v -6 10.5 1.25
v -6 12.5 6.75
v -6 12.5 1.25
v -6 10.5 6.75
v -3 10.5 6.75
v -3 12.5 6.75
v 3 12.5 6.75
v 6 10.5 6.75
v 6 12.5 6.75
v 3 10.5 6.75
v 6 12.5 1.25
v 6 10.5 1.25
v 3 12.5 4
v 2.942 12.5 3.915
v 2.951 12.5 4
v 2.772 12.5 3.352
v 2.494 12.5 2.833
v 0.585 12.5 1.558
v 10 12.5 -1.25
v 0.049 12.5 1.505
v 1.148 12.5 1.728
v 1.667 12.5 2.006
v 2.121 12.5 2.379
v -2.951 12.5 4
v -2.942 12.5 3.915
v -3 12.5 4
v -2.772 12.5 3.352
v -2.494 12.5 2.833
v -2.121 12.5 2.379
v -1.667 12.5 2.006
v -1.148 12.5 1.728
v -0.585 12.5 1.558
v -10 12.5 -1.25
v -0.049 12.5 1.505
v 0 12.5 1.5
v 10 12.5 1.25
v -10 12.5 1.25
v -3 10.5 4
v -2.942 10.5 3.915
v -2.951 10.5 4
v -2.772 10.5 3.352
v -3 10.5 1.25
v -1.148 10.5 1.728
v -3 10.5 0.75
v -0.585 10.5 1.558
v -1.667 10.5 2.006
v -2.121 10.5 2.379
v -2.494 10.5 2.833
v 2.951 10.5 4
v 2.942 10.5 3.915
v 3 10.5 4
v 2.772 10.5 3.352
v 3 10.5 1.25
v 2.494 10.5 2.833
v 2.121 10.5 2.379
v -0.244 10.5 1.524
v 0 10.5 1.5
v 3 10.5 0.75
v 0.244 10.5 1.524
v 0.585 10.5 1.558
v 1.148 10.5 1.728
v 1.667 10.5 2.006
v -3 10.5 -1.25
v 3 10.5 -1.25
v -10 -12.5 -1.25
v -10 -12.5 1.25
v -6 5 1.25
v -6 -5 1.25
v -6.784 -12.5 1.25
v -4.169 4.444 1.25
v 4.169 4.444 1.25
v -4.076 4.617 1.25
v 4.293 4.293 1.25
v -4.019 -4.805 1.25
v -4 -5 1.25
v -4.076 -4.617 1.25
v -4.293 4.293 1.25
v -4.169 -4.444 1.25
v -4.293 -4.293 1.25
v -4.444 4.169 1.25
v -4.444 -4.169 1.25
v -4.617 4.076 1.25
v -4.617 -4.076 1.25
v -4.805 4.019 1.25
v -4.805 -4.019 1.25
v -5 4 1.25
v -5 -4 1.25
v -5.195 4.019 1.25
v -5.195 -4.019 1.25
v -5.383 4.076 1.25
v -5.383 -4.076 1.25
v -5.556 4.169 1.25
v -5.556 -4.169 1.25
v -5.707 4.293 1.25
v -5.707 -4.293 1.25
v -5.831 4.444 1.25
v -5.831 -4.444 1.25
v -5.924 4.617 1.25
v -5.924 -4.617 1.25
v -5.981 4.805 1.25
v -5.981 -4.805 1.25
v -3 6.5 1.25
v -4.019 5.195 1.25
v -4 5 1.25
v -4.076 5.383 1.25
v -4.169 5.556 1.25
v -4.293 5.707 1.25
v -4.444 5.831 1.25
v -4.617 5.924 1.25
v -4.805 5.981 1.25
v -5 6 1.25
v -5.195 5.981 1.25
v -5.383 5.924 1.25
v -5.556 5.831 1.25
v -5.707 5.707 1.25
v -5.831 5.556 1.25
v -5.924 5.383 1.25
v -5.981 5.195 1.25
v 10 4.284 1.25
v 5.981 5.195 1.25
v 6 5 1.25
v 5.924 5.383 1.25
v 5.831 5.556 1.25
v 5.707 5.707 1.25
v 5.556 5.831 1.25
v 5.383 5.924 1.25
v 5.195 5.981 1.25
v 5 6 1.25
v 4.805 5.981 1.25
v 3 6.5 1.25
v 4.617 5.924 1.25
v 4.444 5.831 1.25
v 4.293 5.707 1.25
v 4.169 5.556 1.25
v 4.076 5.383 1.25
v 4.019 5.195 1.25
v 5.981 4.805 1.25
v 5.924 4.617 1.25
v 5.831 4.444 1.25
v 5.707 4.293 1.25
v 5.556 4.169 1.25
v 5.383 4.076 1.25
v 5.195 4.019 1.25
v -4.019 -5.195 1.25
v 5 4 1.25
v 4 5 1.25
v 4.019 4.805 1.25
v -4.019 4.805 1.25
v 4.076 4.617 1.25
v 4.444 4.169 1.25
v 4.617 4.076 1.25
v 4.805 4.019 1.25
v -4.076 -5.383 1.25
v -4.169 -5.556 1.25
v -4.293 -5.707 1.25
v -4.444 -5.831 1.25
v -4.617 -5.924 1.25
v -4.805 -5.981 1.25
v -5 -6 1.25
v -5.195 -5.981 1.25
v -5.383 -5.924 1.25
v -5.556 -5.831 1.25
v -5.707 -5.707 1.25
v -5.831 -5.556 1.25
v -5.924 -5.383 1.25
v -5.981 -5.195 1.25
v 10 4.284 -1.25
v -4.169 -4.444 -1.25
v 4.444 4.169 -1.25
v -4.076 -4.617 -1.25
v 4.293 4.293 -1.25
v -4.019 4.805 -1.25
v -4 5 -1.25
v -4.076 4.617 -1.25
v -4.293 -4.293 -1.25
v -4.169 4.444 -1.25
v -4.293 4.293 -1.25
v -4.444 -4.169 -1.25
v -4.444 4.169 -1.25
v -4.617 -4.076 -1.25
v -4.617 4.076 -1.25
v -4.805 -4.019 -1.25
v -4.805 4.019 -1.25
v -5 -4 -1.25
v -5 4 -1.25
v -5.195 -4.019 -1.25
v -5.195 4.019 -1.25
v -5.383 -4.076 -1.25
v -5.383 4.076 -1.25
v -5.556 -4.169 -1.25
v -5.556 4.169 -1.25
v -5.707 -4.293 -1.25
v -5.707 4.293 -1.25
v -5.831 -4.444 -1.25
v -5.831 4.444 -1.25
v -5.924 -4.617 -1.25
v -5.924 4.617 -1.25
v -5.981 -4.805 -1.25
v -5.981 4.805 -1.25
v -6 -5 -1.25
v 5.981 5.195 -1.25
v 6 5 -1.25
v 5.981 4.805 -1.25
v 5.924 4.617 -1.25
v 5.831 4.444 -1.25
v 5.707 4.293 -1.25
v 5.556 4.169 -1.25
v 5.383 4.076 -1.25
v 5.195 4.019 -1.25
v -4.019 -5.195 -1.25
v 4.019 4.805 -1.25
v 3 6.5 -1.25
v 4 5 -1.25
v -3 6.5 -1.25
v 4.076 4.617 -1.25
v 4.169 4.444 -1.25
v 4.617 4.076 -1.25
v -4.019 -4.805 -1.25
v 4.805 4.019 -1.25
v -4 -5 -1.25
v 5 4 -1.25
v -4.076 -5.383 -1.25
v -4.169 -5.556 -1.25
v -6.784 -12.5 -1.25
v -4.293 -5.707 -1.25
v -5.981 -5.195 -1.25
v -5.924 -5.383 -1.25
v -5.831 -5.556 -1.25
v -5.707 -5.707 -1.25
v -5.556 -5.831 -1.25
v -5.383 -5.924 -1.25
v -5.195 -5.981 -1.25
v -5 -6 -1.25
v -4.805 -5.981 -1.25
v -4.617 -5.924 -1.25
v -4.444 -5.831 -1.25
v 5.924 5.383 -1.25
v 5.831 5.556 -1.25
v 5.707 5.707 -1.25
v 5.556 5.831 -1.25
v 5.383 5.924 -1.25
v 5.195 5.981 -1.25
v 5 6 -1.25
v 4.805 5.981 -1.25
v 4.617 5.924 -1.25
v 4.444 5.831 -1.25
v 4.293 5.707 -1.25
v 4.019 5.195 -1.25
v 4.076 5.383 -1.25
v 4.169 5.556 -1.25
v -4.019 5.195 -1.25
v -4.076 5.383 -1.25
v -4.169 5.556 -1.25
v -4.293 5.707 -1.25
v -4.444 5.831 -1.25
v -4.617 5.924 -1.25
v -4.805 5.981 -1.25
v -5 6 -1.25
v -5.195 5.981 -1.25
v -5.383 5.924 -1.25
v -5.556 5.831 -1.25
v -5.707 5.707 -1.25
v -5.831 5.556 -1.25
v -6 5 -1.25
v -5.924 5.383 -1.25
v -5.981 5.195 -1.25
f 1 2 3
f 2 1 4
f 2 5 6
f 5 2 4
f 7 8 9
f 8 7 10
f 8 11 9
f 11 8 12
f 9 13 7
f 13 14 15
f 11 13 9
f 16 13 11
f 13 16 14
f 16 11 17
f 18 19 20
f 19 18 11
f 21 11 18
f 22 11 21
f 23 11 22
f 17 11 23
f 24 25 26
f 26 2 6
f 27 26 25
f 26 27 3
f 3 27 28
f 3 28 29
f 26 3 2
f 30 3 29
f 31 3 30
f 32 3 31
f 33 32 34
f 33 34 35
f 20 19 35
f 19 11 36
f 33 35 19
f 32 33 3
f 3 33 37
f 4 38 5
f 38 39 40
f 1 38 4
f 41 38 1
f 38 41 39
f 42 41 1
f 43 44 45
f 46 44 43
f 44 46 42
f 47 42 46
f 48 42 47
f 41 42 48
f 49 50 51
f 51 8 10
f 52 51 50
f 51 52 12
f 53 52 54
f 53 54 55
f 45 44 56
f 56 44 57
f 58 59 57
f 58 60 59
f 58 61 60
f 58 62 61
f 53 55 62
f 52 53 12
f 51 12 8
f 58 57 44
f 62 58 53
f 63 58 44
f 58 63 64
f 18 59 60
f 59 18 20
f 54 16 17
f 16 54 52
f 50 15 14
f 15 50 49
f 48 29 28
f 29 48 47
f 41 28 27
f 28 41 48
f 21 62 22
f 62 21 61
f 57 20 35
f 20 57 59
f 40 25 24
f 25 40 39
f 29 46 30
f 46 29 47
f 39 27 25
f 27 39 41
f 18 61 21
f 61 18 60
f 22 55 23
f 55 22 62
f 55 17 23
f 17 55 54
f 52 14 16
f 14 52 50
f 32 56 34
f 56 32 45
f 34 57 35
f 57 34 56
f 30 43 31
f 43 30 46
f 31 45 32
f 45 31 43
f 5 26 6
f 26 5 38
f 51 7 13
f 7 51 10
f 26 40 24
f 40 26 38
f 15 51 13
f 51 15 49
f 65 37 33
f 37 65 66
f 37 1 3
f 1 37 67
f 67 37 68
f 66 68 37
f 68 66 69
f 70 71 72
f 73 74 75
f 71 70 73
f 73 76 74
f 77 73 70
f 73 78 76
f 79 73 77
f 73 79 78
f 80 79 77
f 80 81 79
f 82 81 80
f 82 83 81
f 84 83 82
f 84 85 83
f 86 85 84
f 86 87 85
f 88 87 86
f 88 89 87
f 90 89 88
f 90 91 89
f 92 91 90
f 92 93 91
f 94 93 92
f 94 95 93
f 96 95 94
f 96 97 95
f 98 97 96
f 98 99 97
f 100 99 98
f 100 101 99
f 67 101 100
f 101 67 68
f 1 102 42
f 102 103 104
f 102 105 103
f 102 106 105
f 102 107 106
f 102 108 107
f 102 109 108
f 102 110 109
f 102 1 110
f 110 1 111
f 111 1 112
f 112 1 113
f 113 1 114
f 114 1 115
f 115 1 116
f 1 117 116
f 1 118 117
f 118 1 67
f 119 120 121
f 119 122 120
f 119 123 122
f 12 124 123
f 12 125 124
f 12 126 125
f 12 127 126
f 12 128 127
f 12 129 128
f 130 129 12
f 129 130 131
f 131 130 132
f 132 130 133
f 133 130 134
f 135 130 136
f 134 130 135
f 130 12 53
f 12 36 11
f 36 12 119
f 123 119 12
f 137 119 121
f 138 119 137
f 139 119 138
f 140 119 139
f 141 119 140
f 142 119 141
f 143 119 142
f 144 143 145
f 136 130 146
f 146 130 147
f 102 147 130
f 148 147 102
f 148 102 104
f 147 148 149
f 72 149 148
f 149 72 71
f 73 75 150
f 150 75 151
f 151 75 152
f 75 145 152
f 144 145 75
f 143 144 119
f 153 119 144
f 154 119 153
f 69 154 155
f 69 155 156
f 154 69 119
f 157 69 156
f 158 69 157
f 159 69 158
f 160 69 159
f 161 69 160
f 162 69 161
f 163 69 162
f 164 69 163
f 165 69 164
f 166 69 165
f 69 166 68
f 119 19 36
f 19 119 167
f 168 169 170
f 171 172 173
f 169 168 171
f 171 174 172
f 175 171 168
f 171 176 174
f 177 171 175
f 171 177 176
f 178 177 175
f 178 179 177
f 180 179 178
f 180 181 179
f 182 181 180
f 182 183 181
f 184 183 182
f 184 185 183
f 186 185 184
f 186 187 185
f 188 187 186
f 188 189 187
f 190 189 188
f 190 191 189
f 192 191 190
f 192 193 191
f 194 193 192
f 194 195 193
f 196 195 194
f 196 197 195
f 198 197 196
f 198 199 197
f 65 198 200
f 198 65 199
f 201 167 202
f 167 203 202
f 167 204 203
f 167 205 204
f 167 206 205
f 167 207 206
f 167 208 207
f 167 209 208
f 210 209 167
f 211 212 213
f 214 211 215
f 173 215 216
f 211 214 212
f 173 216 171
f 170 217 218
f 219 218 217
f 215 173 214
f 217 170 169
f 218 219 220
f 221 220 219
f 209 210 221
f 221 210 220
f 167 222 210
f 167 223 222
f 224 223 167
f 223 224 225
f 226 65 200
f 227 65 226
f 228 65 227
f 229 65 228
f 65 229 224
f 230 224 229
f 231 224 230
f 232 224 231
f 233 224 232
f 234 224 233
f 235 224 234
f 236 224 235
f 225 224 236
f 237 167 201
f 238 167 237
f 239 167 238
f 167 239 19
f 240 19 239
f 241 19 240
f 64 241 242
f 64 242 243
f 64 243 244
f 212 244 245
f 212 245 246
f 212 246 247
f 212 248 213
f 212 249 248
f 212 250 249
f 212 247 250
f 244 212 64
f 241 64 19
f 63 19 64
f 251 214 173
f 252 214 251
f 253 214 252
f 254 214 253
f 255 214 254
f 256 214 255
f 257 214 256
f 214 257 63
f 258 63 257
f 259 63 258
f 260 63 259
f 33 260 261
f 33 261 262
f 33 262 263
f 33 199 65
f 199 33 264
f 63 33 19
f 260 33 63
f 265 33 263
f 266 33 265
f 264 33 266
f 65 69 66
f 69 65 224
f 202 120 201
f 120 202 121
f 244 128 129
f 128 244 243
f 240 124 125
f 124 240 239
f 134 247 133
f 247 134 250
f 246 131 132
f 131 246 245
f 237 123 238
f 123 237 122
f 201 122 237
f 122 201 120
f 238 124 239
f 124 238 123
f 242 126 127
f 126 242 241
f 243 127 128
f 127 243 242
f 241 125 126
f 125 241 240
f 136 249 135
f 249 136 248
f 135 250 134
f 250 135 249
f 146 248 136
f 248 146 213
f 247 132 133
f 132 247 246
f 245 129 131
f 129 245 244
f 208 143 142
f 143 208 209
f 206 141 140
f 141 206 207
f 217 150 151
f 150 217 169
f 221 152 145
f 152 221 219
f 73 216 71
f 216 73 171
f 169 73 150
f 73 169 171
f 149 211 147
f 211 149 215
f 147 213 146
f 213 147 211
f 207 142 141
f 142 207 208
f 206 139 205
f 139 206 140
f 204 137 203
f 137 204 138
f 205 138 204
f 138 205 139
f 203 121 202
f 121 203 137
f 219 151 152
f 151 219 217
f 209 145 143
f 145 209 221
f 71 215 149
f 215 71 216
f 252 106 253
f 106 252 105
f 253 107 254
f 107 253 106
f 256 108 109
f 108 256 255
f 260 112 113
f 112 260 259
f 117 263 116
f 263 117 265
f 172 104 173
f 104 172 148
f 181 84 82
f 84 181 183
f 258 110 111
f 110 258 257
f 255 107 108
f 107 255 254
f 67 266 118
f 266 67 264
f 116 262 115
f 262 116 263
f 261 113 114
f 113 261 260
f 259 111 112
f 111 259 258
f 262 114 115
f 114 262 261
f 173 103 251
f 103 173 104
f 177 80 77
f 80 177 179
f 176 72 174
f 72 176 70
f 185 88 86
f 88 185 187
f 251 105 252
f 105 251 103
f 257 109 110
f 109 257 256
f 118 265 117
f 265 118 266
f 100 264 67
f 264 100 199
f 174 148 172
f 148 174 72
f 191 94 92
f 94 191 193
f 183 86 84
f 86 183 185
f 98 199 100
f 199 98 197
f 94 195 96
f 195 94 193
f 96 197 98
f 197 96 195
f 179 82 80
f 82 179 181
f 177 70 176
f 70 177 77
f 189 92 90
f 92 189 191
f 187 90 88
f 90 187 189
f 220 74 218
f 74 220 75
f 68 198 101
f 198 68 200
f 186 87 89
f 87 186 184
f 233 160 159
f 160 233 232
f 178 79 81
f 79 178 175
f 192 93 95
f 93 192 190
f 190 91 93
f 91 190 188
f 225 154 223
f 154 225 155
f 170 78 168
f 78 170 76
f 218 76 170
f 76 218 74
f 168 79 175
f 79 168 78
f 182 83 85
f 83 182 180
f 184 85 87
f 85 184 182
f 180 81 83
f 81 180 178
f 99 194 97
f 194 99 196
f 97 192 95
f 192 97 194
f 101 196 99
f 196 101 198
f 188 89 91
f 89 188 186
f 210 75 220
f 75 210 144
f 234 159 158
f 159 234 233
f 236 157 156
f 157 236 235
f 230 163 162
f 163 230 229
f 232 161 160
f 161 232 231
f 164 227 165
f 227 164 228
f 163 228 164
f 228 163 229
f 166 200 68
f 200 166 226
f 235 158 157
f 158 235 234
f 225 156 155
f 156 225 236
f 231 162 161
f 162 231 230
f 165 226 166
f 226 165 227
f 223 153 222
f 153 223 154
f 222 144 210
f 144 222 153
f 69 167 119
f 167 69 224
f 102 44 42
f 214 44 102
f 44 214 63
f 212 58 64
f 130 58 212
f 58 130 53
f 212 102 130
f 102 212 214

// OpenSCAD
$fn=32;
difference() {
    cube([20, 25, 2.5], center=true);
    translate([5, 5, 0]) cylinder(d=2, h=5, center=true);
    translate([-5, 5, 0]) cylinder(d=2, h=5, center=true);
    translate([-5, -5, 0]) cylinder(d=2, h=5, center=true);
    translate([17, -17, 0]) rotate([0, 0, 45]) cube([40, 40, 2.5], center=true);
    translate([0, 8.5, 0]) cube([6, 4, 2.5], center=true);
}

difference() {
    translate([0, 25/2 - 2/2, 5 - 2.5/2])  cube([12, 2, 6], center=true);
    translate([0, 10, 4.5]) rotate([90, 0, 0]) cylinder(d=6, h=6, center=true);
    translate([0, 10, 7]) cube([6, 6, 6], center=true);
}
